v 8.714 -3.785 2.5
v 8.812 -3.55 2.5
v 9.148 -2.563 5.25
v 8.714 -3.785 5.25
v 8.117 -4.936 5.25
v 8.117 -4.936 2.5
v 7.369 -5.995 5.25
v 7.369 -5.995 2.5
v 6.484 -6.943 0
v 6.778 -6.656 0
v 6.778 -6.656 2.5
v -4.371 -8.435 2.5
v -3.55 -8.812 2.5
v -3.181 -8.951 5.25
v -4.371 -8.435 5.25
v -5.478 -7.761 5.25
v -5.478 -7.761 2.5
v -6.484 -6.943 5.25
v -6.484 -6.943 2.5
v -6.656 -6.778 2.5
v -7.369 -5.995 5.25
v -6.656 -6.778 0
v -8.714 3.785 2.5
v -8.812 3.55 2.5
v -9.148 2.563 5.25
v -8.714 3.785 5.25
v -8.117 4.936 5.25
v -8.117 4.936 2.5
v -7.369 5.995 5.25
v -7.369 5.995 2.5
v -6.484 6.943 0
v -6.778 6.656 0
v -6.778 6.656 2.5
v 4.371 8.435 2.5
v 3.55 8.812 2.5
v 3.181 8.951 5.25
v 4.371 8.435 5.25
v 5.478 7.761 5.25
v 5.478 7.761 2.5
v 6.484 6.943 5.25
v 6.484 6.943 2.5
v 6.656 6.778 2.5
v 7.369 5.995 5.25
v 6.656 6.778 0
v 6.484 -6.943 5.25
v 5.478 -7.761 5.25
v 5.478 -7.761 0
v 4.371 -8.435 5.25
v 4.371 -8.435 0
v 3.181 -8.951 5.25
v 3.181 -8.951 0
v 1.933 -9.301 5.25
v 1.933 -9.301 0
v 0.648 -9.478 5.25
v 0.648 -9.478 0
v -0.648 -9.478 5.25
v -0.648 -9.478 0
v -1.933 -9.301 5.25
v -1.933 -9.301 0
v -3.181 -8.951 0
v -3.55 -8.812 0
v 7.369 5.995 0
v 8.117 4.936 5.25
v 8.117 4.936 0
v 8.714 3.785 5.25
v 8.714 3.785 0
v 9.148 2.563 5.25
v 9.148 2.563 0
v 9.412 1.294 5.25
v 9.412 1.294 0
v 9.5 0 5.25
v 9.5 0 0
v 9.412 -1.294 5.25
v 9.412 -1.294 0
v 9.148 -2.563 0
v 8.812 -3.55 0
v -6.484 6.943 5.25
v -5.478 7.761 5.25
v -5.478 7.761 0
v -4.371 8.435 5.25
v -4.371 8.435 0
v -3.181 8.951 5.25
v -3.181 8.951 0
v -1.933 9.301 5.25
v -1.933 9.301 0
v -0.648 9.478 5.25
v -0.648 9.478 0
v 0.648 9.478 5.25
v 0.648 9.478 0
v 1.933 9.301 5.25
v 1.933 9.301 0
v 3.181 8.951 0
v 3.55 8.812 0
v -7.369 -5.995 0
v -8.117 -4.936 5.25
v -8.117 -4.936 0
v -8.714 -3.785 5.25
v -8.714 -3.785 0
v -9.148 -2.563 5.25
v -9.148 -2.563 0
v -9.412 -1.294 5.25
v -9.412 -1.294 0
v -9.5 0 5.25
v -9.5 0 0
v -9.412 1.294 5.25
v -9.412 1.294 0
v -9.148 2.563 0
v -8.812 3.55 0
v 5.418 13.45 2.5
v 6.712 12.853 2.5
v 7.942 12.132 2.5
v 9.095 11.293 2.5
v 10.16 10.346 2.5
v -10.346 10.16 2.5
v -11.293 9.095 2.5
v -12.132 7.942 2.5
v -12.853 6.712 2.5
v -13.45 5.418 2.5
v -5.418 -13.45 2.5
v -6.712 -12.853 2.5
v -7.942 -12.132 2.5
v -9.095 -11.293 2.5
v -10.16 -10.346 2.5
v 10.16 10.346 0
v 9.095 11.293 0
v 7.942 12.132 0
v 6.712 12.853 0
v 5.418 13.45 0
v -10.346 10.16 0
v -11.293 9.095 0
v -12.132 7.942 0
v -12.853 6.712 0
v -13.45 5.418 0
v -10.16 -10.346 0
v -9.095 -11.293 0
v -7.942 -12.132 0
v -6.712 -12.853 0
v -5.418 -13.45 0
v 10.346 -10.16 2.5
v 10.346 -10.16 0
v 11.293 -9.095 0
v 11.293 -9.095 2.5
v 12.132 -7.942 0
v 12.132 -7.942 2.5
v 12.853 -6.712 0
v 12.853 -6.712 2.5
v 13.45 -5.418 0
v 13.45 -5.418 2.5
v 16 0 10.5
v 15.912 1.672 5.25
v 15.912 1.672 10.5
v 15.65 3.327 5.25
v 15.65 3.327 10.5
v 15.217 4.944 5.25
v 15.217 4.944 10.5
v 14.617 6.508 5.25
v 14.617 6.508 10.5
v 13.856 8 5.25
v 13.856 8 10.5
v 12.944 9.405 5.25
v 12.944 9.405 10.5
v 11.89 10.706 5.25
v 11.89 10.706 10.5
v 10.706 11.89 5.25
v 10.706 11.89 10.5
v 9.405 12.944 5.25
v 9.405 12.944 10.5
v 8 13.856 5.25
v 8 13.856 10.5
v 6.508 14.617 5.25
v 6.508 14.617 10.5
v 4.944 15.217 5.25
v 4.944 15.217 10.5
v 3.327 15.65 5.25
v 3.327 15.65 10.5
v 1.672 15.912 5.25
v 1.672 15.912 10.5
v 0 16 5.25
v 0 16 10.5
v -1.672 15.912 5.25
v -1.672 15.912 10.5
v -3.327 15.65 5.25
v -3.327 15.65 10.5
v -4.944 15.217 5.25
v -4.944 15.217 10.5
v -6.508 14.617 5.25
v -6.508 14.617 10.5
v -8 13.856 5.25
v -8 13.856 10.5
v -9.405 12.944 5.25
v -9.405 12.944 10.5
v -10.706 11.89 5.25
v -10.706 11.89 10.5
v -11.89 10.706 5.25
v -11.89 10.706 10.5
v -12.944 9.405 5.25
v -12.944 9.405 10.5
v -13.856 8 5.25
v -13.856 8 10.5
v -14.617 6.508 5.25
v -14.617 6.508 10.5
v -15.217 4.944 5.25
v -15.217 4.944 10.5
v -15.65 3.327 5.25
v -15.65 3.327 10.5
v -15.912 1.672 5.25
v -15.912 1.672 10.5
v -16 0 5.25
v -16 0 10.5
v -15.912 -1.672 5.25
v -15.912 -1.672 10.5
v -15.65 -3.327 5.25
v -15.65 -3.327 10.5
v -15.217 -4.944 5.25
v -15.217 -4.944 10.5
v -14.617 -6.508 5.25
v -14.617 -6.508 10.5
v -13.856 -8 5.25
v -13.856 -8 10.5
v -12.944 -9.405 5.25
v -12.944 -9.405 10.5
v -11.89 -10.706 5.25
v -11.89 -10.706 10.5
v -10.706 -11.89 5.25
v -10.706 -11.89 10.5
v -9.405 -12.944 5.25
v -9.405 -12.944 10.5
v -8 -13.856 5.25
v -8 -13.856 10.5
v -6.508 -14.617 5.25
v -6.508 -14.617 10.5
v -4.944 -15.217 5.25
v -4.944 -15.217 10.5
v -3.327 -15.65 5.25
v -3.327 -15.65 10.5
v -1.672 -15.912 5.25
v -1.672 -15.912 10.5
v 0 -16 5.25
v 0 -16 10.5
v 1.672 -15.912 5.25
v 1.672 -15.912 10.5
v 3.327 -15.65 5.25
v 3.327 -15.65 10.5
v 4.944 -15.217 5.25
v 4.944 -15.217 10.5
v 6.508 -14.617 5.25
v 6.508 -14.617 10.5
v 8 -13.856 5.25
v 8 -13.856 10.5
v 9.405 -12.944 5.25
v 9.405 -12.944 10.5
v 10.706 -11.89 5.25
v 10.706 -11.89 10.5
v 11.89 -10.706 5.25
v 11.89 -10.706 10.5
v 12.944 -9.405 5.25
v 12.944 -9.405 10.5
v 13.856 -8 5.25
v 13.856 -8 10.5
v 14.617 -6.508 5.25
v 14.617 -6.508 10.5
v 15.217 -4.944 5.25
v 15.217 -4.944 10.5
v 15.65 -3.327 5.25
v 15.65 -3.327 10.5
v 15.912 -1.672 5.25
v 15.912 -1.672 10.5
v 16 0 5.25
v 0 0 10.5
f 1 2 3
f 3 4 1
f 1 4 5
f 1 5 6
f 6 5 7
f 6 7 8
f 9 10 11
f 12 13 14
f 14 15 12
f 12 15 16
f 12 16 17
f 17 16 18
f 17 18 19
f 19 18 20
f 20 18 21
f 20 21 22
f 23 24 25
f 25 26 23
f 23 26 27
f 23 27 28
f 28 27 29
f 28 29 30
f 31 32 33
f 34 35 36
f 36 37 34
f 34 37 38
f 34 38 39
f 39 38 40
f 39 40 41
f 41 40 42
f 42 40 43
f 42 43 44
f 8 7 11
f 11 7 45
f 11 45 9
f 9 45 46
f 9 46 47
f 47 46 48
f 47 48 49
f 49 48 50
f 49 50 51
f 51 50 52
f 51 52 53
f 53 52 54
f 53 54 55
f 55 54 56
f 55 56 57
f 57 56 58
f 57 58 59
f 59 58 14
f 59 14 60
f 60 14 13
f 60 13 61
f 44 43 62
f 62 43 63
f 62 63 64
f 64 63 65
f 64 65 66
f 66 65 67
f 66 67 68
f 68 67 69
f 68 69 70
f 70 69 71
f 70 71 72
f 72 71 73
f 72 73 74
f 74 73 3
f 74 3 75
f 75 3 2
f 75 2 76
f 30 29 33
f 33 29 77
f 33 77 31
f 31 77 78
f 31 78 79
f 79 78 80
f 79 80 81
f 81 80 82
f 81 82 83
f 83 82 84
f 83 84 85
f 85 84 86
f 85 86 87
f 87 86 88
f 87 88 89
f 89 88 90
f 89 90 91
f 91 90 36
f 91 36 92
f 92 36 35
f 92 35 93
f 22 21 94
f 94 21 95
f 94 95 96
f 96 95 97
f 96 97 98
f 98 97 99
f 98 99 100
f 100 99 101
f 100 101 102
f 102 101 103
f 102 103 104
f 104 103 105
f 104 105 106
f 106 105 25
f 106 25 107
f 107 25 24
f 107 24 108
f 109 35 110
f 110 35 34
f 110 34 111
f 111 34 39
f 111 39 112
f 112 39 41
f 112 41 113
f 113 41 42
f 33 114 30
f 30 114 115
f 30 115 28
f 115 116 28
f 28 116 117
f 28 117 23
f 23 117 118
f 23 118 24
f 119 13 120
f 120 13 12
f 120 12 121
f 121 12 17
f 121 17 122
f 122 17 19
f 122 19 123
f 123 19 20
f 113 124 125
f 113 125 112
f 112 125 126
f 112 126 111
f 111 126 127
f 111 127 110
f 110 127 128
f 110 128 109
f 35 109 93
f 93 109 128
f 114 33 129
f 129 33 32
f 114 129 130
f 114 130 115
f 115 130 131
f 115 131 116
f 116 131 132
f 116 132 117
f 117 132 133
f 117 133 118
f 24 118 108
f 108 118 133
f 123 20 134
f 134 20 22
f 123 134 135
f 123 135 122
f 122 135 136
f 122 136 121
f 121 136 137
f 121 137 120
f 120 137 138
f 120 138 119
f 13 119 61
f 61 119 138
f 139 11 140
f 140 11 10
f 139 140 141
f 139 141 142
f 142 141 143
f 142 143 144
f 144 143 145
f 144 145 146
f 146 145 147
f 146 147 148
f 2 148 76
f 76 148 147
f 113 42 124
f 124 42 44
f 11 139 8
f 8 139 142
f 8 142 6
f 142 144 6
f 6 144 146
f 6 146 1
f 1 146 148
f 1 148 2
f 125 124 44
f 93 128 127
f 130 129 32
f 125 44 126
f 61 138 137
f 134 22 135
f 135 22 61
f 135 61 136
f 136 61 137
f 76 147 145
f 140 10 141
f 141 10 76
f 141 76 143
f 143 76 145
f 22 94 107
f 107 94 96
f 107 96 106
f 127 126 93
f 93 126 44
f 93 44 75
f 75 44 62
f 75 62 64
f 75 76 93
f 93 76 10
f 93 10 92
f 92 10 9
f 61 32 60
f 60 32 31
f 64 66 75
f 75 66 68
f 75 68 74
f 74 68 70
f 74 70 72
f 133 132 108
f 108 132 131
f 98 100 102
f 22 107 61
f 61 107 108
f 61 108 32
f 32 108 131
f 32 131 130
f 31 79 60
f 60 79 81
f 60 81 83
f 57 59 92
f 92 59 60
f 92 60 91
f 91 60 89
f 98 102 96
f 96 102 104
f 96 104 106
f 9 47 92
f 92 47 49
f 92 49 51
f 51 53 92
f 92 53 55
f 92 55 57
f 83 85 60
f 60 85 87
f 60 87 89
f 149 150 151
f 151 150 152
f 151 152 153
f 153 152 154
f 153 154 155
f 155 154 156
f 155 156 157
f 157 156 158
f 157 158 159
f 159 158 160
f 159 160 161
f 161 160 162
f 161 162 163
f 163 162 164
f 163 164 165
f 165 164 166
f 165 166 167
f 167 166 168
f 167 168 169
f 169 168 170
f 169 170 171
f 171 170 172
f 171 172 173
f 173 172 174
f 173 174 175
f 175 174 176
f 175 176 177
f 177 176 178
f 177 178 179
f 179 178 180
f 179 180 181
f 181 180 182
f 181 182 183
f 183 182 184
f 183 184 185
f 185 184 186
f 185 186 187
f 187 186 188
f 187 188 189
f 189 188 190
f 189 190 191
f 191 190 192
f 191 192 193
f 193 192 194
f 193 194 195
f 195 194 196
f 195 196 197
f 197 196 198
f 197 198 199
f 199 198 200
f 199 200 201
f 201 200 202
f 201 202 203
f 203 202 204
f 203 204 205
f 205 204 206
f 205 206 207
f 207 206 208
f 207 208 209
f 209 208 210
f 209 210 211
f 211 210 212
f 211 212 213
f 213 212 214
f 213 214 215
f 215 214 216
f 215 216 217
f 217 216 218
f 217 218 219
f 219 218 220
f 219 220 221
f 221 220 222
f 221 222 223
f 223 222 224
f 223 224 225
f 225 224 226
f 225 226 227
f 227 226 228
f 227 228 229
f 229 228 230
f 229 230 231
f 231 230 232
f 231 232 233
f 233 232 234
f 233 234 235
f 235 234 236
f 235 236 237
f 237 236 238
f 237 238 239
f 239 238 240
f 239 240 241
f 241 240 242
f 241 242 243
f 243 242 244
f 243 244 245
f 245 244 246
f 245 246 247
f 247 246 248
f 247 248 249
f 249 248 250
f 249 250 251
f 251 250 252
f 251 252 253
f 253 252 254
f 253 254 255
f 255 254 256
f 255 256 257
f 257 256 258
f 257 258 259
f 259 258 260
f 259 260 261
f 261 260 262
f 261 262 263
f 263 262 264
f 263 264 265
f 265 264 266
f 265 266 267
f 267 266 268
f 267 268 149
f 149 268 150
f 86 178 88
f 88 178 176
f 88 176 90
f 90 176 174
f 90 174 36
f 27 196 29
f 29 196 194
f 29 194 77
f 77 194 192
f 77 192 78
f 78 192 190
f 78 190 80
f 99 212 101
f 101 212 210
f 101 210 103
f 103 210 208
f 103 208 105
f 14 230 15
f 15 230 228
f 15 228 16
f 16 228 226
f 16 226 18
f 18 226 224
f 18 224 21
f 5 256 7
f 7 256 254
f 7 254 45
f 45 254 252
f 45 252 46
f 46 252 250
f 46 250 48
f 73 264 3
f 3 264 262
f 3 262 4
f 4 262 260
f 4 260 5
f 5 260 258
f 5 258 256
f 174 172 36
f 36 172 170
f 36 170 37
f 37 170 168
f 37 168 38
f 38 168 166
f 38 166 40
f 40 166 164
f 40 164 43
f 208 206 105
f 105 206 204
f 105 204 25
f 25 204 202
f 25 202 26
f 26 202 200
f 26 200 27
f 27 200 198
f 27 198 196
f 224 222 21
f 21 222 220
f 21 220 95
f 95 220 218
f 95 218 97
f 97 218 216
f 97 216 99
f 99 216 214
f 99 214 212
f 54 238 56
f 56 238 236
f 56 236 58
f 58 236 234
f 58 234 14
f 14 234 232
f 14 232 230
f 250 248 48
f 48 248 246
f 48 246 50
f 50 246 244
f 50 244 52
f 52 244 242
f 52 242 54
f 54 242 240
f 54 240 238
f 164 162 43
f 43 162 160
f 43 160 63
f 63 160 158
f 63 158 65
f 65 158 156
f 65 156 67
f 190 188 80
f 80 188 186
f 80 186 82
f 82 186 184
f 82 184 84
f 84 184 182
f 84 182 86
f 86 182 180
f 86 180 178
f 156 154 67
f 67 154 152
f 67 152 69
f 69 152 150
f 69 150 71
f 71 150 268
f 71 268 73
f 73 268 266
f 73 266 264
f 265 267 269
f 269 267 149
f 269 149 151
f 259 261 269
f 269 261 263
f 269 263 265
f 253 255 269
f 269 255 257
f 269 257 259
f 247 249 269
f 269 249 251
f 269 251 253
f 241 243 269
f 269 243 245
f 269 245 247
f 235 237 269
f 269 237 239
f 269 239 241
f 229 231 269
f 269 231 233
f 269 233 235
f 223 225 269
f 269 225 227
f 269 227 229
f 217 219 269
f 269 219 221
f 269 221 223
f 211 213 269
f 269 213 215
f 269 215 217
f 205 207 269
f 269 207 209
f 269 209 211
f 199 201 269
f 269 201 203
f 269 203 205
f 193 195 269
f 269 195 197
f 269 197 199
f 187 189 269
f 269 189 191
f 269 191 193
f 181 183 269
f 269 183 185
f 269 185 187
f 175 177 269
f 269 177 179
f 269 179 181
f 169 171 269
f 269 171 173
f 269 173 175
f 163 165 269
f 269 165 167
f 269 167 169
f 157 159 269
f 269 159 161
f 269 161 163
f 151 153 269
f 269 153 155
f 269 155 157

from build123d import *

# Parameters (mm, degrees)
BOSS_EXTRUDE1_DEPTH      = 2.5
SKETCH2_R                = 9.5
BOSS_EXTRUDE2_DEPTH      = 3
SKETCH3_R                = 16
BOSS_EXTRUDE3_DEPTH      = 5
BOSS_EXTRUDE3_DEPTH_BACK = 0.25


with BuildPart() as part:
    # Sketch1 → Boss-Extrude1 (new body)
    with BuildSketch(Plane.XY):
        with BuildLine():
            Line((5.417779502, 13.449820269), (3.549579674, 8.811951211))
            ThreePointArc((3.549579674, 8.811951211), (-1.94104371, 9.299588664), (-6.778170146, 6.656305993))
            Line((-6.778170146, 6.656305993), (-10.345628118, 10.159624937))
            ThreePointArc((-10.345628118, 10.159624937), (-12.131657575, 7.941843897), (-13.449820269, 5.417779502))
            Line((-13.449820269, 5.417779502), (-8.811951211, 3.549579674))
            ThreePointArc((-8.811951211, 3.549579674), (-9.299588664, -1.94104371), (-6.656305993, -6.778170146))
            Line((-6.656305993, -6.778170146), (-10.159624937, -10.345628118))
            ThreePointArc((-10.159624937, -10.345628118), (-7.941843897, -12.131657575), (-5.417779502, -13.449820269))
            Line((-5.417779502, -13.449820269), (-3.549579674, -8.811951211))
            ThreePointArc((-3.549579674, -8.811951211), (1.94104371, -9.299588664), (6.778170146, -6.656305993))
            Line((6.778170146, -6.656305993), (10.345628118, -10.159624937))
            ThreePointArc((10.345628118, -10.159624937), (12.131657575, -7.941843897), (13.449820269, -5.417779502))
            Line((13.449820269, -5.417779502), (8.811951211, -3.549579674))
            ThreePointArc((8.811951211, -3.549579674), (9.299588664, 1.94104371), (6.656305993, 6.778170146))
            Line((6.656305993, 6.778170146), (10.159624937, 10.345628118))
            ThreePointArc((10.159624937, 10.345628118), (7.941843897, 12.131657575), (5.417779502, 13.449820269))
        make_face()
    extrude(amount=BOSS_EXTRUDE1_DEPTH)

    # Sketch2 → Boss-Extrude2 (add)
    with BuildSketch(Plane.XY.offset(2.5)):
        Circle(SKETCH2_R)
    extrude(amount=BOSS_EXTRUDE2_DEPTH)

    # Sketch3 → Boss-Extrude3 (add, two sides)
    with BuildSketch(Plane.XY.offset(5.5)) as boss_extrude3_sk:
        Circle(SKETCH3_R)
    extrude(amount=BOSS_EXTRUDE3_DEPTH)
    extrude(boss_extrude3_sk.sketch, amount=-BOSS_EXTRUDE3_DEPTH_BACK)


solid = part.part
